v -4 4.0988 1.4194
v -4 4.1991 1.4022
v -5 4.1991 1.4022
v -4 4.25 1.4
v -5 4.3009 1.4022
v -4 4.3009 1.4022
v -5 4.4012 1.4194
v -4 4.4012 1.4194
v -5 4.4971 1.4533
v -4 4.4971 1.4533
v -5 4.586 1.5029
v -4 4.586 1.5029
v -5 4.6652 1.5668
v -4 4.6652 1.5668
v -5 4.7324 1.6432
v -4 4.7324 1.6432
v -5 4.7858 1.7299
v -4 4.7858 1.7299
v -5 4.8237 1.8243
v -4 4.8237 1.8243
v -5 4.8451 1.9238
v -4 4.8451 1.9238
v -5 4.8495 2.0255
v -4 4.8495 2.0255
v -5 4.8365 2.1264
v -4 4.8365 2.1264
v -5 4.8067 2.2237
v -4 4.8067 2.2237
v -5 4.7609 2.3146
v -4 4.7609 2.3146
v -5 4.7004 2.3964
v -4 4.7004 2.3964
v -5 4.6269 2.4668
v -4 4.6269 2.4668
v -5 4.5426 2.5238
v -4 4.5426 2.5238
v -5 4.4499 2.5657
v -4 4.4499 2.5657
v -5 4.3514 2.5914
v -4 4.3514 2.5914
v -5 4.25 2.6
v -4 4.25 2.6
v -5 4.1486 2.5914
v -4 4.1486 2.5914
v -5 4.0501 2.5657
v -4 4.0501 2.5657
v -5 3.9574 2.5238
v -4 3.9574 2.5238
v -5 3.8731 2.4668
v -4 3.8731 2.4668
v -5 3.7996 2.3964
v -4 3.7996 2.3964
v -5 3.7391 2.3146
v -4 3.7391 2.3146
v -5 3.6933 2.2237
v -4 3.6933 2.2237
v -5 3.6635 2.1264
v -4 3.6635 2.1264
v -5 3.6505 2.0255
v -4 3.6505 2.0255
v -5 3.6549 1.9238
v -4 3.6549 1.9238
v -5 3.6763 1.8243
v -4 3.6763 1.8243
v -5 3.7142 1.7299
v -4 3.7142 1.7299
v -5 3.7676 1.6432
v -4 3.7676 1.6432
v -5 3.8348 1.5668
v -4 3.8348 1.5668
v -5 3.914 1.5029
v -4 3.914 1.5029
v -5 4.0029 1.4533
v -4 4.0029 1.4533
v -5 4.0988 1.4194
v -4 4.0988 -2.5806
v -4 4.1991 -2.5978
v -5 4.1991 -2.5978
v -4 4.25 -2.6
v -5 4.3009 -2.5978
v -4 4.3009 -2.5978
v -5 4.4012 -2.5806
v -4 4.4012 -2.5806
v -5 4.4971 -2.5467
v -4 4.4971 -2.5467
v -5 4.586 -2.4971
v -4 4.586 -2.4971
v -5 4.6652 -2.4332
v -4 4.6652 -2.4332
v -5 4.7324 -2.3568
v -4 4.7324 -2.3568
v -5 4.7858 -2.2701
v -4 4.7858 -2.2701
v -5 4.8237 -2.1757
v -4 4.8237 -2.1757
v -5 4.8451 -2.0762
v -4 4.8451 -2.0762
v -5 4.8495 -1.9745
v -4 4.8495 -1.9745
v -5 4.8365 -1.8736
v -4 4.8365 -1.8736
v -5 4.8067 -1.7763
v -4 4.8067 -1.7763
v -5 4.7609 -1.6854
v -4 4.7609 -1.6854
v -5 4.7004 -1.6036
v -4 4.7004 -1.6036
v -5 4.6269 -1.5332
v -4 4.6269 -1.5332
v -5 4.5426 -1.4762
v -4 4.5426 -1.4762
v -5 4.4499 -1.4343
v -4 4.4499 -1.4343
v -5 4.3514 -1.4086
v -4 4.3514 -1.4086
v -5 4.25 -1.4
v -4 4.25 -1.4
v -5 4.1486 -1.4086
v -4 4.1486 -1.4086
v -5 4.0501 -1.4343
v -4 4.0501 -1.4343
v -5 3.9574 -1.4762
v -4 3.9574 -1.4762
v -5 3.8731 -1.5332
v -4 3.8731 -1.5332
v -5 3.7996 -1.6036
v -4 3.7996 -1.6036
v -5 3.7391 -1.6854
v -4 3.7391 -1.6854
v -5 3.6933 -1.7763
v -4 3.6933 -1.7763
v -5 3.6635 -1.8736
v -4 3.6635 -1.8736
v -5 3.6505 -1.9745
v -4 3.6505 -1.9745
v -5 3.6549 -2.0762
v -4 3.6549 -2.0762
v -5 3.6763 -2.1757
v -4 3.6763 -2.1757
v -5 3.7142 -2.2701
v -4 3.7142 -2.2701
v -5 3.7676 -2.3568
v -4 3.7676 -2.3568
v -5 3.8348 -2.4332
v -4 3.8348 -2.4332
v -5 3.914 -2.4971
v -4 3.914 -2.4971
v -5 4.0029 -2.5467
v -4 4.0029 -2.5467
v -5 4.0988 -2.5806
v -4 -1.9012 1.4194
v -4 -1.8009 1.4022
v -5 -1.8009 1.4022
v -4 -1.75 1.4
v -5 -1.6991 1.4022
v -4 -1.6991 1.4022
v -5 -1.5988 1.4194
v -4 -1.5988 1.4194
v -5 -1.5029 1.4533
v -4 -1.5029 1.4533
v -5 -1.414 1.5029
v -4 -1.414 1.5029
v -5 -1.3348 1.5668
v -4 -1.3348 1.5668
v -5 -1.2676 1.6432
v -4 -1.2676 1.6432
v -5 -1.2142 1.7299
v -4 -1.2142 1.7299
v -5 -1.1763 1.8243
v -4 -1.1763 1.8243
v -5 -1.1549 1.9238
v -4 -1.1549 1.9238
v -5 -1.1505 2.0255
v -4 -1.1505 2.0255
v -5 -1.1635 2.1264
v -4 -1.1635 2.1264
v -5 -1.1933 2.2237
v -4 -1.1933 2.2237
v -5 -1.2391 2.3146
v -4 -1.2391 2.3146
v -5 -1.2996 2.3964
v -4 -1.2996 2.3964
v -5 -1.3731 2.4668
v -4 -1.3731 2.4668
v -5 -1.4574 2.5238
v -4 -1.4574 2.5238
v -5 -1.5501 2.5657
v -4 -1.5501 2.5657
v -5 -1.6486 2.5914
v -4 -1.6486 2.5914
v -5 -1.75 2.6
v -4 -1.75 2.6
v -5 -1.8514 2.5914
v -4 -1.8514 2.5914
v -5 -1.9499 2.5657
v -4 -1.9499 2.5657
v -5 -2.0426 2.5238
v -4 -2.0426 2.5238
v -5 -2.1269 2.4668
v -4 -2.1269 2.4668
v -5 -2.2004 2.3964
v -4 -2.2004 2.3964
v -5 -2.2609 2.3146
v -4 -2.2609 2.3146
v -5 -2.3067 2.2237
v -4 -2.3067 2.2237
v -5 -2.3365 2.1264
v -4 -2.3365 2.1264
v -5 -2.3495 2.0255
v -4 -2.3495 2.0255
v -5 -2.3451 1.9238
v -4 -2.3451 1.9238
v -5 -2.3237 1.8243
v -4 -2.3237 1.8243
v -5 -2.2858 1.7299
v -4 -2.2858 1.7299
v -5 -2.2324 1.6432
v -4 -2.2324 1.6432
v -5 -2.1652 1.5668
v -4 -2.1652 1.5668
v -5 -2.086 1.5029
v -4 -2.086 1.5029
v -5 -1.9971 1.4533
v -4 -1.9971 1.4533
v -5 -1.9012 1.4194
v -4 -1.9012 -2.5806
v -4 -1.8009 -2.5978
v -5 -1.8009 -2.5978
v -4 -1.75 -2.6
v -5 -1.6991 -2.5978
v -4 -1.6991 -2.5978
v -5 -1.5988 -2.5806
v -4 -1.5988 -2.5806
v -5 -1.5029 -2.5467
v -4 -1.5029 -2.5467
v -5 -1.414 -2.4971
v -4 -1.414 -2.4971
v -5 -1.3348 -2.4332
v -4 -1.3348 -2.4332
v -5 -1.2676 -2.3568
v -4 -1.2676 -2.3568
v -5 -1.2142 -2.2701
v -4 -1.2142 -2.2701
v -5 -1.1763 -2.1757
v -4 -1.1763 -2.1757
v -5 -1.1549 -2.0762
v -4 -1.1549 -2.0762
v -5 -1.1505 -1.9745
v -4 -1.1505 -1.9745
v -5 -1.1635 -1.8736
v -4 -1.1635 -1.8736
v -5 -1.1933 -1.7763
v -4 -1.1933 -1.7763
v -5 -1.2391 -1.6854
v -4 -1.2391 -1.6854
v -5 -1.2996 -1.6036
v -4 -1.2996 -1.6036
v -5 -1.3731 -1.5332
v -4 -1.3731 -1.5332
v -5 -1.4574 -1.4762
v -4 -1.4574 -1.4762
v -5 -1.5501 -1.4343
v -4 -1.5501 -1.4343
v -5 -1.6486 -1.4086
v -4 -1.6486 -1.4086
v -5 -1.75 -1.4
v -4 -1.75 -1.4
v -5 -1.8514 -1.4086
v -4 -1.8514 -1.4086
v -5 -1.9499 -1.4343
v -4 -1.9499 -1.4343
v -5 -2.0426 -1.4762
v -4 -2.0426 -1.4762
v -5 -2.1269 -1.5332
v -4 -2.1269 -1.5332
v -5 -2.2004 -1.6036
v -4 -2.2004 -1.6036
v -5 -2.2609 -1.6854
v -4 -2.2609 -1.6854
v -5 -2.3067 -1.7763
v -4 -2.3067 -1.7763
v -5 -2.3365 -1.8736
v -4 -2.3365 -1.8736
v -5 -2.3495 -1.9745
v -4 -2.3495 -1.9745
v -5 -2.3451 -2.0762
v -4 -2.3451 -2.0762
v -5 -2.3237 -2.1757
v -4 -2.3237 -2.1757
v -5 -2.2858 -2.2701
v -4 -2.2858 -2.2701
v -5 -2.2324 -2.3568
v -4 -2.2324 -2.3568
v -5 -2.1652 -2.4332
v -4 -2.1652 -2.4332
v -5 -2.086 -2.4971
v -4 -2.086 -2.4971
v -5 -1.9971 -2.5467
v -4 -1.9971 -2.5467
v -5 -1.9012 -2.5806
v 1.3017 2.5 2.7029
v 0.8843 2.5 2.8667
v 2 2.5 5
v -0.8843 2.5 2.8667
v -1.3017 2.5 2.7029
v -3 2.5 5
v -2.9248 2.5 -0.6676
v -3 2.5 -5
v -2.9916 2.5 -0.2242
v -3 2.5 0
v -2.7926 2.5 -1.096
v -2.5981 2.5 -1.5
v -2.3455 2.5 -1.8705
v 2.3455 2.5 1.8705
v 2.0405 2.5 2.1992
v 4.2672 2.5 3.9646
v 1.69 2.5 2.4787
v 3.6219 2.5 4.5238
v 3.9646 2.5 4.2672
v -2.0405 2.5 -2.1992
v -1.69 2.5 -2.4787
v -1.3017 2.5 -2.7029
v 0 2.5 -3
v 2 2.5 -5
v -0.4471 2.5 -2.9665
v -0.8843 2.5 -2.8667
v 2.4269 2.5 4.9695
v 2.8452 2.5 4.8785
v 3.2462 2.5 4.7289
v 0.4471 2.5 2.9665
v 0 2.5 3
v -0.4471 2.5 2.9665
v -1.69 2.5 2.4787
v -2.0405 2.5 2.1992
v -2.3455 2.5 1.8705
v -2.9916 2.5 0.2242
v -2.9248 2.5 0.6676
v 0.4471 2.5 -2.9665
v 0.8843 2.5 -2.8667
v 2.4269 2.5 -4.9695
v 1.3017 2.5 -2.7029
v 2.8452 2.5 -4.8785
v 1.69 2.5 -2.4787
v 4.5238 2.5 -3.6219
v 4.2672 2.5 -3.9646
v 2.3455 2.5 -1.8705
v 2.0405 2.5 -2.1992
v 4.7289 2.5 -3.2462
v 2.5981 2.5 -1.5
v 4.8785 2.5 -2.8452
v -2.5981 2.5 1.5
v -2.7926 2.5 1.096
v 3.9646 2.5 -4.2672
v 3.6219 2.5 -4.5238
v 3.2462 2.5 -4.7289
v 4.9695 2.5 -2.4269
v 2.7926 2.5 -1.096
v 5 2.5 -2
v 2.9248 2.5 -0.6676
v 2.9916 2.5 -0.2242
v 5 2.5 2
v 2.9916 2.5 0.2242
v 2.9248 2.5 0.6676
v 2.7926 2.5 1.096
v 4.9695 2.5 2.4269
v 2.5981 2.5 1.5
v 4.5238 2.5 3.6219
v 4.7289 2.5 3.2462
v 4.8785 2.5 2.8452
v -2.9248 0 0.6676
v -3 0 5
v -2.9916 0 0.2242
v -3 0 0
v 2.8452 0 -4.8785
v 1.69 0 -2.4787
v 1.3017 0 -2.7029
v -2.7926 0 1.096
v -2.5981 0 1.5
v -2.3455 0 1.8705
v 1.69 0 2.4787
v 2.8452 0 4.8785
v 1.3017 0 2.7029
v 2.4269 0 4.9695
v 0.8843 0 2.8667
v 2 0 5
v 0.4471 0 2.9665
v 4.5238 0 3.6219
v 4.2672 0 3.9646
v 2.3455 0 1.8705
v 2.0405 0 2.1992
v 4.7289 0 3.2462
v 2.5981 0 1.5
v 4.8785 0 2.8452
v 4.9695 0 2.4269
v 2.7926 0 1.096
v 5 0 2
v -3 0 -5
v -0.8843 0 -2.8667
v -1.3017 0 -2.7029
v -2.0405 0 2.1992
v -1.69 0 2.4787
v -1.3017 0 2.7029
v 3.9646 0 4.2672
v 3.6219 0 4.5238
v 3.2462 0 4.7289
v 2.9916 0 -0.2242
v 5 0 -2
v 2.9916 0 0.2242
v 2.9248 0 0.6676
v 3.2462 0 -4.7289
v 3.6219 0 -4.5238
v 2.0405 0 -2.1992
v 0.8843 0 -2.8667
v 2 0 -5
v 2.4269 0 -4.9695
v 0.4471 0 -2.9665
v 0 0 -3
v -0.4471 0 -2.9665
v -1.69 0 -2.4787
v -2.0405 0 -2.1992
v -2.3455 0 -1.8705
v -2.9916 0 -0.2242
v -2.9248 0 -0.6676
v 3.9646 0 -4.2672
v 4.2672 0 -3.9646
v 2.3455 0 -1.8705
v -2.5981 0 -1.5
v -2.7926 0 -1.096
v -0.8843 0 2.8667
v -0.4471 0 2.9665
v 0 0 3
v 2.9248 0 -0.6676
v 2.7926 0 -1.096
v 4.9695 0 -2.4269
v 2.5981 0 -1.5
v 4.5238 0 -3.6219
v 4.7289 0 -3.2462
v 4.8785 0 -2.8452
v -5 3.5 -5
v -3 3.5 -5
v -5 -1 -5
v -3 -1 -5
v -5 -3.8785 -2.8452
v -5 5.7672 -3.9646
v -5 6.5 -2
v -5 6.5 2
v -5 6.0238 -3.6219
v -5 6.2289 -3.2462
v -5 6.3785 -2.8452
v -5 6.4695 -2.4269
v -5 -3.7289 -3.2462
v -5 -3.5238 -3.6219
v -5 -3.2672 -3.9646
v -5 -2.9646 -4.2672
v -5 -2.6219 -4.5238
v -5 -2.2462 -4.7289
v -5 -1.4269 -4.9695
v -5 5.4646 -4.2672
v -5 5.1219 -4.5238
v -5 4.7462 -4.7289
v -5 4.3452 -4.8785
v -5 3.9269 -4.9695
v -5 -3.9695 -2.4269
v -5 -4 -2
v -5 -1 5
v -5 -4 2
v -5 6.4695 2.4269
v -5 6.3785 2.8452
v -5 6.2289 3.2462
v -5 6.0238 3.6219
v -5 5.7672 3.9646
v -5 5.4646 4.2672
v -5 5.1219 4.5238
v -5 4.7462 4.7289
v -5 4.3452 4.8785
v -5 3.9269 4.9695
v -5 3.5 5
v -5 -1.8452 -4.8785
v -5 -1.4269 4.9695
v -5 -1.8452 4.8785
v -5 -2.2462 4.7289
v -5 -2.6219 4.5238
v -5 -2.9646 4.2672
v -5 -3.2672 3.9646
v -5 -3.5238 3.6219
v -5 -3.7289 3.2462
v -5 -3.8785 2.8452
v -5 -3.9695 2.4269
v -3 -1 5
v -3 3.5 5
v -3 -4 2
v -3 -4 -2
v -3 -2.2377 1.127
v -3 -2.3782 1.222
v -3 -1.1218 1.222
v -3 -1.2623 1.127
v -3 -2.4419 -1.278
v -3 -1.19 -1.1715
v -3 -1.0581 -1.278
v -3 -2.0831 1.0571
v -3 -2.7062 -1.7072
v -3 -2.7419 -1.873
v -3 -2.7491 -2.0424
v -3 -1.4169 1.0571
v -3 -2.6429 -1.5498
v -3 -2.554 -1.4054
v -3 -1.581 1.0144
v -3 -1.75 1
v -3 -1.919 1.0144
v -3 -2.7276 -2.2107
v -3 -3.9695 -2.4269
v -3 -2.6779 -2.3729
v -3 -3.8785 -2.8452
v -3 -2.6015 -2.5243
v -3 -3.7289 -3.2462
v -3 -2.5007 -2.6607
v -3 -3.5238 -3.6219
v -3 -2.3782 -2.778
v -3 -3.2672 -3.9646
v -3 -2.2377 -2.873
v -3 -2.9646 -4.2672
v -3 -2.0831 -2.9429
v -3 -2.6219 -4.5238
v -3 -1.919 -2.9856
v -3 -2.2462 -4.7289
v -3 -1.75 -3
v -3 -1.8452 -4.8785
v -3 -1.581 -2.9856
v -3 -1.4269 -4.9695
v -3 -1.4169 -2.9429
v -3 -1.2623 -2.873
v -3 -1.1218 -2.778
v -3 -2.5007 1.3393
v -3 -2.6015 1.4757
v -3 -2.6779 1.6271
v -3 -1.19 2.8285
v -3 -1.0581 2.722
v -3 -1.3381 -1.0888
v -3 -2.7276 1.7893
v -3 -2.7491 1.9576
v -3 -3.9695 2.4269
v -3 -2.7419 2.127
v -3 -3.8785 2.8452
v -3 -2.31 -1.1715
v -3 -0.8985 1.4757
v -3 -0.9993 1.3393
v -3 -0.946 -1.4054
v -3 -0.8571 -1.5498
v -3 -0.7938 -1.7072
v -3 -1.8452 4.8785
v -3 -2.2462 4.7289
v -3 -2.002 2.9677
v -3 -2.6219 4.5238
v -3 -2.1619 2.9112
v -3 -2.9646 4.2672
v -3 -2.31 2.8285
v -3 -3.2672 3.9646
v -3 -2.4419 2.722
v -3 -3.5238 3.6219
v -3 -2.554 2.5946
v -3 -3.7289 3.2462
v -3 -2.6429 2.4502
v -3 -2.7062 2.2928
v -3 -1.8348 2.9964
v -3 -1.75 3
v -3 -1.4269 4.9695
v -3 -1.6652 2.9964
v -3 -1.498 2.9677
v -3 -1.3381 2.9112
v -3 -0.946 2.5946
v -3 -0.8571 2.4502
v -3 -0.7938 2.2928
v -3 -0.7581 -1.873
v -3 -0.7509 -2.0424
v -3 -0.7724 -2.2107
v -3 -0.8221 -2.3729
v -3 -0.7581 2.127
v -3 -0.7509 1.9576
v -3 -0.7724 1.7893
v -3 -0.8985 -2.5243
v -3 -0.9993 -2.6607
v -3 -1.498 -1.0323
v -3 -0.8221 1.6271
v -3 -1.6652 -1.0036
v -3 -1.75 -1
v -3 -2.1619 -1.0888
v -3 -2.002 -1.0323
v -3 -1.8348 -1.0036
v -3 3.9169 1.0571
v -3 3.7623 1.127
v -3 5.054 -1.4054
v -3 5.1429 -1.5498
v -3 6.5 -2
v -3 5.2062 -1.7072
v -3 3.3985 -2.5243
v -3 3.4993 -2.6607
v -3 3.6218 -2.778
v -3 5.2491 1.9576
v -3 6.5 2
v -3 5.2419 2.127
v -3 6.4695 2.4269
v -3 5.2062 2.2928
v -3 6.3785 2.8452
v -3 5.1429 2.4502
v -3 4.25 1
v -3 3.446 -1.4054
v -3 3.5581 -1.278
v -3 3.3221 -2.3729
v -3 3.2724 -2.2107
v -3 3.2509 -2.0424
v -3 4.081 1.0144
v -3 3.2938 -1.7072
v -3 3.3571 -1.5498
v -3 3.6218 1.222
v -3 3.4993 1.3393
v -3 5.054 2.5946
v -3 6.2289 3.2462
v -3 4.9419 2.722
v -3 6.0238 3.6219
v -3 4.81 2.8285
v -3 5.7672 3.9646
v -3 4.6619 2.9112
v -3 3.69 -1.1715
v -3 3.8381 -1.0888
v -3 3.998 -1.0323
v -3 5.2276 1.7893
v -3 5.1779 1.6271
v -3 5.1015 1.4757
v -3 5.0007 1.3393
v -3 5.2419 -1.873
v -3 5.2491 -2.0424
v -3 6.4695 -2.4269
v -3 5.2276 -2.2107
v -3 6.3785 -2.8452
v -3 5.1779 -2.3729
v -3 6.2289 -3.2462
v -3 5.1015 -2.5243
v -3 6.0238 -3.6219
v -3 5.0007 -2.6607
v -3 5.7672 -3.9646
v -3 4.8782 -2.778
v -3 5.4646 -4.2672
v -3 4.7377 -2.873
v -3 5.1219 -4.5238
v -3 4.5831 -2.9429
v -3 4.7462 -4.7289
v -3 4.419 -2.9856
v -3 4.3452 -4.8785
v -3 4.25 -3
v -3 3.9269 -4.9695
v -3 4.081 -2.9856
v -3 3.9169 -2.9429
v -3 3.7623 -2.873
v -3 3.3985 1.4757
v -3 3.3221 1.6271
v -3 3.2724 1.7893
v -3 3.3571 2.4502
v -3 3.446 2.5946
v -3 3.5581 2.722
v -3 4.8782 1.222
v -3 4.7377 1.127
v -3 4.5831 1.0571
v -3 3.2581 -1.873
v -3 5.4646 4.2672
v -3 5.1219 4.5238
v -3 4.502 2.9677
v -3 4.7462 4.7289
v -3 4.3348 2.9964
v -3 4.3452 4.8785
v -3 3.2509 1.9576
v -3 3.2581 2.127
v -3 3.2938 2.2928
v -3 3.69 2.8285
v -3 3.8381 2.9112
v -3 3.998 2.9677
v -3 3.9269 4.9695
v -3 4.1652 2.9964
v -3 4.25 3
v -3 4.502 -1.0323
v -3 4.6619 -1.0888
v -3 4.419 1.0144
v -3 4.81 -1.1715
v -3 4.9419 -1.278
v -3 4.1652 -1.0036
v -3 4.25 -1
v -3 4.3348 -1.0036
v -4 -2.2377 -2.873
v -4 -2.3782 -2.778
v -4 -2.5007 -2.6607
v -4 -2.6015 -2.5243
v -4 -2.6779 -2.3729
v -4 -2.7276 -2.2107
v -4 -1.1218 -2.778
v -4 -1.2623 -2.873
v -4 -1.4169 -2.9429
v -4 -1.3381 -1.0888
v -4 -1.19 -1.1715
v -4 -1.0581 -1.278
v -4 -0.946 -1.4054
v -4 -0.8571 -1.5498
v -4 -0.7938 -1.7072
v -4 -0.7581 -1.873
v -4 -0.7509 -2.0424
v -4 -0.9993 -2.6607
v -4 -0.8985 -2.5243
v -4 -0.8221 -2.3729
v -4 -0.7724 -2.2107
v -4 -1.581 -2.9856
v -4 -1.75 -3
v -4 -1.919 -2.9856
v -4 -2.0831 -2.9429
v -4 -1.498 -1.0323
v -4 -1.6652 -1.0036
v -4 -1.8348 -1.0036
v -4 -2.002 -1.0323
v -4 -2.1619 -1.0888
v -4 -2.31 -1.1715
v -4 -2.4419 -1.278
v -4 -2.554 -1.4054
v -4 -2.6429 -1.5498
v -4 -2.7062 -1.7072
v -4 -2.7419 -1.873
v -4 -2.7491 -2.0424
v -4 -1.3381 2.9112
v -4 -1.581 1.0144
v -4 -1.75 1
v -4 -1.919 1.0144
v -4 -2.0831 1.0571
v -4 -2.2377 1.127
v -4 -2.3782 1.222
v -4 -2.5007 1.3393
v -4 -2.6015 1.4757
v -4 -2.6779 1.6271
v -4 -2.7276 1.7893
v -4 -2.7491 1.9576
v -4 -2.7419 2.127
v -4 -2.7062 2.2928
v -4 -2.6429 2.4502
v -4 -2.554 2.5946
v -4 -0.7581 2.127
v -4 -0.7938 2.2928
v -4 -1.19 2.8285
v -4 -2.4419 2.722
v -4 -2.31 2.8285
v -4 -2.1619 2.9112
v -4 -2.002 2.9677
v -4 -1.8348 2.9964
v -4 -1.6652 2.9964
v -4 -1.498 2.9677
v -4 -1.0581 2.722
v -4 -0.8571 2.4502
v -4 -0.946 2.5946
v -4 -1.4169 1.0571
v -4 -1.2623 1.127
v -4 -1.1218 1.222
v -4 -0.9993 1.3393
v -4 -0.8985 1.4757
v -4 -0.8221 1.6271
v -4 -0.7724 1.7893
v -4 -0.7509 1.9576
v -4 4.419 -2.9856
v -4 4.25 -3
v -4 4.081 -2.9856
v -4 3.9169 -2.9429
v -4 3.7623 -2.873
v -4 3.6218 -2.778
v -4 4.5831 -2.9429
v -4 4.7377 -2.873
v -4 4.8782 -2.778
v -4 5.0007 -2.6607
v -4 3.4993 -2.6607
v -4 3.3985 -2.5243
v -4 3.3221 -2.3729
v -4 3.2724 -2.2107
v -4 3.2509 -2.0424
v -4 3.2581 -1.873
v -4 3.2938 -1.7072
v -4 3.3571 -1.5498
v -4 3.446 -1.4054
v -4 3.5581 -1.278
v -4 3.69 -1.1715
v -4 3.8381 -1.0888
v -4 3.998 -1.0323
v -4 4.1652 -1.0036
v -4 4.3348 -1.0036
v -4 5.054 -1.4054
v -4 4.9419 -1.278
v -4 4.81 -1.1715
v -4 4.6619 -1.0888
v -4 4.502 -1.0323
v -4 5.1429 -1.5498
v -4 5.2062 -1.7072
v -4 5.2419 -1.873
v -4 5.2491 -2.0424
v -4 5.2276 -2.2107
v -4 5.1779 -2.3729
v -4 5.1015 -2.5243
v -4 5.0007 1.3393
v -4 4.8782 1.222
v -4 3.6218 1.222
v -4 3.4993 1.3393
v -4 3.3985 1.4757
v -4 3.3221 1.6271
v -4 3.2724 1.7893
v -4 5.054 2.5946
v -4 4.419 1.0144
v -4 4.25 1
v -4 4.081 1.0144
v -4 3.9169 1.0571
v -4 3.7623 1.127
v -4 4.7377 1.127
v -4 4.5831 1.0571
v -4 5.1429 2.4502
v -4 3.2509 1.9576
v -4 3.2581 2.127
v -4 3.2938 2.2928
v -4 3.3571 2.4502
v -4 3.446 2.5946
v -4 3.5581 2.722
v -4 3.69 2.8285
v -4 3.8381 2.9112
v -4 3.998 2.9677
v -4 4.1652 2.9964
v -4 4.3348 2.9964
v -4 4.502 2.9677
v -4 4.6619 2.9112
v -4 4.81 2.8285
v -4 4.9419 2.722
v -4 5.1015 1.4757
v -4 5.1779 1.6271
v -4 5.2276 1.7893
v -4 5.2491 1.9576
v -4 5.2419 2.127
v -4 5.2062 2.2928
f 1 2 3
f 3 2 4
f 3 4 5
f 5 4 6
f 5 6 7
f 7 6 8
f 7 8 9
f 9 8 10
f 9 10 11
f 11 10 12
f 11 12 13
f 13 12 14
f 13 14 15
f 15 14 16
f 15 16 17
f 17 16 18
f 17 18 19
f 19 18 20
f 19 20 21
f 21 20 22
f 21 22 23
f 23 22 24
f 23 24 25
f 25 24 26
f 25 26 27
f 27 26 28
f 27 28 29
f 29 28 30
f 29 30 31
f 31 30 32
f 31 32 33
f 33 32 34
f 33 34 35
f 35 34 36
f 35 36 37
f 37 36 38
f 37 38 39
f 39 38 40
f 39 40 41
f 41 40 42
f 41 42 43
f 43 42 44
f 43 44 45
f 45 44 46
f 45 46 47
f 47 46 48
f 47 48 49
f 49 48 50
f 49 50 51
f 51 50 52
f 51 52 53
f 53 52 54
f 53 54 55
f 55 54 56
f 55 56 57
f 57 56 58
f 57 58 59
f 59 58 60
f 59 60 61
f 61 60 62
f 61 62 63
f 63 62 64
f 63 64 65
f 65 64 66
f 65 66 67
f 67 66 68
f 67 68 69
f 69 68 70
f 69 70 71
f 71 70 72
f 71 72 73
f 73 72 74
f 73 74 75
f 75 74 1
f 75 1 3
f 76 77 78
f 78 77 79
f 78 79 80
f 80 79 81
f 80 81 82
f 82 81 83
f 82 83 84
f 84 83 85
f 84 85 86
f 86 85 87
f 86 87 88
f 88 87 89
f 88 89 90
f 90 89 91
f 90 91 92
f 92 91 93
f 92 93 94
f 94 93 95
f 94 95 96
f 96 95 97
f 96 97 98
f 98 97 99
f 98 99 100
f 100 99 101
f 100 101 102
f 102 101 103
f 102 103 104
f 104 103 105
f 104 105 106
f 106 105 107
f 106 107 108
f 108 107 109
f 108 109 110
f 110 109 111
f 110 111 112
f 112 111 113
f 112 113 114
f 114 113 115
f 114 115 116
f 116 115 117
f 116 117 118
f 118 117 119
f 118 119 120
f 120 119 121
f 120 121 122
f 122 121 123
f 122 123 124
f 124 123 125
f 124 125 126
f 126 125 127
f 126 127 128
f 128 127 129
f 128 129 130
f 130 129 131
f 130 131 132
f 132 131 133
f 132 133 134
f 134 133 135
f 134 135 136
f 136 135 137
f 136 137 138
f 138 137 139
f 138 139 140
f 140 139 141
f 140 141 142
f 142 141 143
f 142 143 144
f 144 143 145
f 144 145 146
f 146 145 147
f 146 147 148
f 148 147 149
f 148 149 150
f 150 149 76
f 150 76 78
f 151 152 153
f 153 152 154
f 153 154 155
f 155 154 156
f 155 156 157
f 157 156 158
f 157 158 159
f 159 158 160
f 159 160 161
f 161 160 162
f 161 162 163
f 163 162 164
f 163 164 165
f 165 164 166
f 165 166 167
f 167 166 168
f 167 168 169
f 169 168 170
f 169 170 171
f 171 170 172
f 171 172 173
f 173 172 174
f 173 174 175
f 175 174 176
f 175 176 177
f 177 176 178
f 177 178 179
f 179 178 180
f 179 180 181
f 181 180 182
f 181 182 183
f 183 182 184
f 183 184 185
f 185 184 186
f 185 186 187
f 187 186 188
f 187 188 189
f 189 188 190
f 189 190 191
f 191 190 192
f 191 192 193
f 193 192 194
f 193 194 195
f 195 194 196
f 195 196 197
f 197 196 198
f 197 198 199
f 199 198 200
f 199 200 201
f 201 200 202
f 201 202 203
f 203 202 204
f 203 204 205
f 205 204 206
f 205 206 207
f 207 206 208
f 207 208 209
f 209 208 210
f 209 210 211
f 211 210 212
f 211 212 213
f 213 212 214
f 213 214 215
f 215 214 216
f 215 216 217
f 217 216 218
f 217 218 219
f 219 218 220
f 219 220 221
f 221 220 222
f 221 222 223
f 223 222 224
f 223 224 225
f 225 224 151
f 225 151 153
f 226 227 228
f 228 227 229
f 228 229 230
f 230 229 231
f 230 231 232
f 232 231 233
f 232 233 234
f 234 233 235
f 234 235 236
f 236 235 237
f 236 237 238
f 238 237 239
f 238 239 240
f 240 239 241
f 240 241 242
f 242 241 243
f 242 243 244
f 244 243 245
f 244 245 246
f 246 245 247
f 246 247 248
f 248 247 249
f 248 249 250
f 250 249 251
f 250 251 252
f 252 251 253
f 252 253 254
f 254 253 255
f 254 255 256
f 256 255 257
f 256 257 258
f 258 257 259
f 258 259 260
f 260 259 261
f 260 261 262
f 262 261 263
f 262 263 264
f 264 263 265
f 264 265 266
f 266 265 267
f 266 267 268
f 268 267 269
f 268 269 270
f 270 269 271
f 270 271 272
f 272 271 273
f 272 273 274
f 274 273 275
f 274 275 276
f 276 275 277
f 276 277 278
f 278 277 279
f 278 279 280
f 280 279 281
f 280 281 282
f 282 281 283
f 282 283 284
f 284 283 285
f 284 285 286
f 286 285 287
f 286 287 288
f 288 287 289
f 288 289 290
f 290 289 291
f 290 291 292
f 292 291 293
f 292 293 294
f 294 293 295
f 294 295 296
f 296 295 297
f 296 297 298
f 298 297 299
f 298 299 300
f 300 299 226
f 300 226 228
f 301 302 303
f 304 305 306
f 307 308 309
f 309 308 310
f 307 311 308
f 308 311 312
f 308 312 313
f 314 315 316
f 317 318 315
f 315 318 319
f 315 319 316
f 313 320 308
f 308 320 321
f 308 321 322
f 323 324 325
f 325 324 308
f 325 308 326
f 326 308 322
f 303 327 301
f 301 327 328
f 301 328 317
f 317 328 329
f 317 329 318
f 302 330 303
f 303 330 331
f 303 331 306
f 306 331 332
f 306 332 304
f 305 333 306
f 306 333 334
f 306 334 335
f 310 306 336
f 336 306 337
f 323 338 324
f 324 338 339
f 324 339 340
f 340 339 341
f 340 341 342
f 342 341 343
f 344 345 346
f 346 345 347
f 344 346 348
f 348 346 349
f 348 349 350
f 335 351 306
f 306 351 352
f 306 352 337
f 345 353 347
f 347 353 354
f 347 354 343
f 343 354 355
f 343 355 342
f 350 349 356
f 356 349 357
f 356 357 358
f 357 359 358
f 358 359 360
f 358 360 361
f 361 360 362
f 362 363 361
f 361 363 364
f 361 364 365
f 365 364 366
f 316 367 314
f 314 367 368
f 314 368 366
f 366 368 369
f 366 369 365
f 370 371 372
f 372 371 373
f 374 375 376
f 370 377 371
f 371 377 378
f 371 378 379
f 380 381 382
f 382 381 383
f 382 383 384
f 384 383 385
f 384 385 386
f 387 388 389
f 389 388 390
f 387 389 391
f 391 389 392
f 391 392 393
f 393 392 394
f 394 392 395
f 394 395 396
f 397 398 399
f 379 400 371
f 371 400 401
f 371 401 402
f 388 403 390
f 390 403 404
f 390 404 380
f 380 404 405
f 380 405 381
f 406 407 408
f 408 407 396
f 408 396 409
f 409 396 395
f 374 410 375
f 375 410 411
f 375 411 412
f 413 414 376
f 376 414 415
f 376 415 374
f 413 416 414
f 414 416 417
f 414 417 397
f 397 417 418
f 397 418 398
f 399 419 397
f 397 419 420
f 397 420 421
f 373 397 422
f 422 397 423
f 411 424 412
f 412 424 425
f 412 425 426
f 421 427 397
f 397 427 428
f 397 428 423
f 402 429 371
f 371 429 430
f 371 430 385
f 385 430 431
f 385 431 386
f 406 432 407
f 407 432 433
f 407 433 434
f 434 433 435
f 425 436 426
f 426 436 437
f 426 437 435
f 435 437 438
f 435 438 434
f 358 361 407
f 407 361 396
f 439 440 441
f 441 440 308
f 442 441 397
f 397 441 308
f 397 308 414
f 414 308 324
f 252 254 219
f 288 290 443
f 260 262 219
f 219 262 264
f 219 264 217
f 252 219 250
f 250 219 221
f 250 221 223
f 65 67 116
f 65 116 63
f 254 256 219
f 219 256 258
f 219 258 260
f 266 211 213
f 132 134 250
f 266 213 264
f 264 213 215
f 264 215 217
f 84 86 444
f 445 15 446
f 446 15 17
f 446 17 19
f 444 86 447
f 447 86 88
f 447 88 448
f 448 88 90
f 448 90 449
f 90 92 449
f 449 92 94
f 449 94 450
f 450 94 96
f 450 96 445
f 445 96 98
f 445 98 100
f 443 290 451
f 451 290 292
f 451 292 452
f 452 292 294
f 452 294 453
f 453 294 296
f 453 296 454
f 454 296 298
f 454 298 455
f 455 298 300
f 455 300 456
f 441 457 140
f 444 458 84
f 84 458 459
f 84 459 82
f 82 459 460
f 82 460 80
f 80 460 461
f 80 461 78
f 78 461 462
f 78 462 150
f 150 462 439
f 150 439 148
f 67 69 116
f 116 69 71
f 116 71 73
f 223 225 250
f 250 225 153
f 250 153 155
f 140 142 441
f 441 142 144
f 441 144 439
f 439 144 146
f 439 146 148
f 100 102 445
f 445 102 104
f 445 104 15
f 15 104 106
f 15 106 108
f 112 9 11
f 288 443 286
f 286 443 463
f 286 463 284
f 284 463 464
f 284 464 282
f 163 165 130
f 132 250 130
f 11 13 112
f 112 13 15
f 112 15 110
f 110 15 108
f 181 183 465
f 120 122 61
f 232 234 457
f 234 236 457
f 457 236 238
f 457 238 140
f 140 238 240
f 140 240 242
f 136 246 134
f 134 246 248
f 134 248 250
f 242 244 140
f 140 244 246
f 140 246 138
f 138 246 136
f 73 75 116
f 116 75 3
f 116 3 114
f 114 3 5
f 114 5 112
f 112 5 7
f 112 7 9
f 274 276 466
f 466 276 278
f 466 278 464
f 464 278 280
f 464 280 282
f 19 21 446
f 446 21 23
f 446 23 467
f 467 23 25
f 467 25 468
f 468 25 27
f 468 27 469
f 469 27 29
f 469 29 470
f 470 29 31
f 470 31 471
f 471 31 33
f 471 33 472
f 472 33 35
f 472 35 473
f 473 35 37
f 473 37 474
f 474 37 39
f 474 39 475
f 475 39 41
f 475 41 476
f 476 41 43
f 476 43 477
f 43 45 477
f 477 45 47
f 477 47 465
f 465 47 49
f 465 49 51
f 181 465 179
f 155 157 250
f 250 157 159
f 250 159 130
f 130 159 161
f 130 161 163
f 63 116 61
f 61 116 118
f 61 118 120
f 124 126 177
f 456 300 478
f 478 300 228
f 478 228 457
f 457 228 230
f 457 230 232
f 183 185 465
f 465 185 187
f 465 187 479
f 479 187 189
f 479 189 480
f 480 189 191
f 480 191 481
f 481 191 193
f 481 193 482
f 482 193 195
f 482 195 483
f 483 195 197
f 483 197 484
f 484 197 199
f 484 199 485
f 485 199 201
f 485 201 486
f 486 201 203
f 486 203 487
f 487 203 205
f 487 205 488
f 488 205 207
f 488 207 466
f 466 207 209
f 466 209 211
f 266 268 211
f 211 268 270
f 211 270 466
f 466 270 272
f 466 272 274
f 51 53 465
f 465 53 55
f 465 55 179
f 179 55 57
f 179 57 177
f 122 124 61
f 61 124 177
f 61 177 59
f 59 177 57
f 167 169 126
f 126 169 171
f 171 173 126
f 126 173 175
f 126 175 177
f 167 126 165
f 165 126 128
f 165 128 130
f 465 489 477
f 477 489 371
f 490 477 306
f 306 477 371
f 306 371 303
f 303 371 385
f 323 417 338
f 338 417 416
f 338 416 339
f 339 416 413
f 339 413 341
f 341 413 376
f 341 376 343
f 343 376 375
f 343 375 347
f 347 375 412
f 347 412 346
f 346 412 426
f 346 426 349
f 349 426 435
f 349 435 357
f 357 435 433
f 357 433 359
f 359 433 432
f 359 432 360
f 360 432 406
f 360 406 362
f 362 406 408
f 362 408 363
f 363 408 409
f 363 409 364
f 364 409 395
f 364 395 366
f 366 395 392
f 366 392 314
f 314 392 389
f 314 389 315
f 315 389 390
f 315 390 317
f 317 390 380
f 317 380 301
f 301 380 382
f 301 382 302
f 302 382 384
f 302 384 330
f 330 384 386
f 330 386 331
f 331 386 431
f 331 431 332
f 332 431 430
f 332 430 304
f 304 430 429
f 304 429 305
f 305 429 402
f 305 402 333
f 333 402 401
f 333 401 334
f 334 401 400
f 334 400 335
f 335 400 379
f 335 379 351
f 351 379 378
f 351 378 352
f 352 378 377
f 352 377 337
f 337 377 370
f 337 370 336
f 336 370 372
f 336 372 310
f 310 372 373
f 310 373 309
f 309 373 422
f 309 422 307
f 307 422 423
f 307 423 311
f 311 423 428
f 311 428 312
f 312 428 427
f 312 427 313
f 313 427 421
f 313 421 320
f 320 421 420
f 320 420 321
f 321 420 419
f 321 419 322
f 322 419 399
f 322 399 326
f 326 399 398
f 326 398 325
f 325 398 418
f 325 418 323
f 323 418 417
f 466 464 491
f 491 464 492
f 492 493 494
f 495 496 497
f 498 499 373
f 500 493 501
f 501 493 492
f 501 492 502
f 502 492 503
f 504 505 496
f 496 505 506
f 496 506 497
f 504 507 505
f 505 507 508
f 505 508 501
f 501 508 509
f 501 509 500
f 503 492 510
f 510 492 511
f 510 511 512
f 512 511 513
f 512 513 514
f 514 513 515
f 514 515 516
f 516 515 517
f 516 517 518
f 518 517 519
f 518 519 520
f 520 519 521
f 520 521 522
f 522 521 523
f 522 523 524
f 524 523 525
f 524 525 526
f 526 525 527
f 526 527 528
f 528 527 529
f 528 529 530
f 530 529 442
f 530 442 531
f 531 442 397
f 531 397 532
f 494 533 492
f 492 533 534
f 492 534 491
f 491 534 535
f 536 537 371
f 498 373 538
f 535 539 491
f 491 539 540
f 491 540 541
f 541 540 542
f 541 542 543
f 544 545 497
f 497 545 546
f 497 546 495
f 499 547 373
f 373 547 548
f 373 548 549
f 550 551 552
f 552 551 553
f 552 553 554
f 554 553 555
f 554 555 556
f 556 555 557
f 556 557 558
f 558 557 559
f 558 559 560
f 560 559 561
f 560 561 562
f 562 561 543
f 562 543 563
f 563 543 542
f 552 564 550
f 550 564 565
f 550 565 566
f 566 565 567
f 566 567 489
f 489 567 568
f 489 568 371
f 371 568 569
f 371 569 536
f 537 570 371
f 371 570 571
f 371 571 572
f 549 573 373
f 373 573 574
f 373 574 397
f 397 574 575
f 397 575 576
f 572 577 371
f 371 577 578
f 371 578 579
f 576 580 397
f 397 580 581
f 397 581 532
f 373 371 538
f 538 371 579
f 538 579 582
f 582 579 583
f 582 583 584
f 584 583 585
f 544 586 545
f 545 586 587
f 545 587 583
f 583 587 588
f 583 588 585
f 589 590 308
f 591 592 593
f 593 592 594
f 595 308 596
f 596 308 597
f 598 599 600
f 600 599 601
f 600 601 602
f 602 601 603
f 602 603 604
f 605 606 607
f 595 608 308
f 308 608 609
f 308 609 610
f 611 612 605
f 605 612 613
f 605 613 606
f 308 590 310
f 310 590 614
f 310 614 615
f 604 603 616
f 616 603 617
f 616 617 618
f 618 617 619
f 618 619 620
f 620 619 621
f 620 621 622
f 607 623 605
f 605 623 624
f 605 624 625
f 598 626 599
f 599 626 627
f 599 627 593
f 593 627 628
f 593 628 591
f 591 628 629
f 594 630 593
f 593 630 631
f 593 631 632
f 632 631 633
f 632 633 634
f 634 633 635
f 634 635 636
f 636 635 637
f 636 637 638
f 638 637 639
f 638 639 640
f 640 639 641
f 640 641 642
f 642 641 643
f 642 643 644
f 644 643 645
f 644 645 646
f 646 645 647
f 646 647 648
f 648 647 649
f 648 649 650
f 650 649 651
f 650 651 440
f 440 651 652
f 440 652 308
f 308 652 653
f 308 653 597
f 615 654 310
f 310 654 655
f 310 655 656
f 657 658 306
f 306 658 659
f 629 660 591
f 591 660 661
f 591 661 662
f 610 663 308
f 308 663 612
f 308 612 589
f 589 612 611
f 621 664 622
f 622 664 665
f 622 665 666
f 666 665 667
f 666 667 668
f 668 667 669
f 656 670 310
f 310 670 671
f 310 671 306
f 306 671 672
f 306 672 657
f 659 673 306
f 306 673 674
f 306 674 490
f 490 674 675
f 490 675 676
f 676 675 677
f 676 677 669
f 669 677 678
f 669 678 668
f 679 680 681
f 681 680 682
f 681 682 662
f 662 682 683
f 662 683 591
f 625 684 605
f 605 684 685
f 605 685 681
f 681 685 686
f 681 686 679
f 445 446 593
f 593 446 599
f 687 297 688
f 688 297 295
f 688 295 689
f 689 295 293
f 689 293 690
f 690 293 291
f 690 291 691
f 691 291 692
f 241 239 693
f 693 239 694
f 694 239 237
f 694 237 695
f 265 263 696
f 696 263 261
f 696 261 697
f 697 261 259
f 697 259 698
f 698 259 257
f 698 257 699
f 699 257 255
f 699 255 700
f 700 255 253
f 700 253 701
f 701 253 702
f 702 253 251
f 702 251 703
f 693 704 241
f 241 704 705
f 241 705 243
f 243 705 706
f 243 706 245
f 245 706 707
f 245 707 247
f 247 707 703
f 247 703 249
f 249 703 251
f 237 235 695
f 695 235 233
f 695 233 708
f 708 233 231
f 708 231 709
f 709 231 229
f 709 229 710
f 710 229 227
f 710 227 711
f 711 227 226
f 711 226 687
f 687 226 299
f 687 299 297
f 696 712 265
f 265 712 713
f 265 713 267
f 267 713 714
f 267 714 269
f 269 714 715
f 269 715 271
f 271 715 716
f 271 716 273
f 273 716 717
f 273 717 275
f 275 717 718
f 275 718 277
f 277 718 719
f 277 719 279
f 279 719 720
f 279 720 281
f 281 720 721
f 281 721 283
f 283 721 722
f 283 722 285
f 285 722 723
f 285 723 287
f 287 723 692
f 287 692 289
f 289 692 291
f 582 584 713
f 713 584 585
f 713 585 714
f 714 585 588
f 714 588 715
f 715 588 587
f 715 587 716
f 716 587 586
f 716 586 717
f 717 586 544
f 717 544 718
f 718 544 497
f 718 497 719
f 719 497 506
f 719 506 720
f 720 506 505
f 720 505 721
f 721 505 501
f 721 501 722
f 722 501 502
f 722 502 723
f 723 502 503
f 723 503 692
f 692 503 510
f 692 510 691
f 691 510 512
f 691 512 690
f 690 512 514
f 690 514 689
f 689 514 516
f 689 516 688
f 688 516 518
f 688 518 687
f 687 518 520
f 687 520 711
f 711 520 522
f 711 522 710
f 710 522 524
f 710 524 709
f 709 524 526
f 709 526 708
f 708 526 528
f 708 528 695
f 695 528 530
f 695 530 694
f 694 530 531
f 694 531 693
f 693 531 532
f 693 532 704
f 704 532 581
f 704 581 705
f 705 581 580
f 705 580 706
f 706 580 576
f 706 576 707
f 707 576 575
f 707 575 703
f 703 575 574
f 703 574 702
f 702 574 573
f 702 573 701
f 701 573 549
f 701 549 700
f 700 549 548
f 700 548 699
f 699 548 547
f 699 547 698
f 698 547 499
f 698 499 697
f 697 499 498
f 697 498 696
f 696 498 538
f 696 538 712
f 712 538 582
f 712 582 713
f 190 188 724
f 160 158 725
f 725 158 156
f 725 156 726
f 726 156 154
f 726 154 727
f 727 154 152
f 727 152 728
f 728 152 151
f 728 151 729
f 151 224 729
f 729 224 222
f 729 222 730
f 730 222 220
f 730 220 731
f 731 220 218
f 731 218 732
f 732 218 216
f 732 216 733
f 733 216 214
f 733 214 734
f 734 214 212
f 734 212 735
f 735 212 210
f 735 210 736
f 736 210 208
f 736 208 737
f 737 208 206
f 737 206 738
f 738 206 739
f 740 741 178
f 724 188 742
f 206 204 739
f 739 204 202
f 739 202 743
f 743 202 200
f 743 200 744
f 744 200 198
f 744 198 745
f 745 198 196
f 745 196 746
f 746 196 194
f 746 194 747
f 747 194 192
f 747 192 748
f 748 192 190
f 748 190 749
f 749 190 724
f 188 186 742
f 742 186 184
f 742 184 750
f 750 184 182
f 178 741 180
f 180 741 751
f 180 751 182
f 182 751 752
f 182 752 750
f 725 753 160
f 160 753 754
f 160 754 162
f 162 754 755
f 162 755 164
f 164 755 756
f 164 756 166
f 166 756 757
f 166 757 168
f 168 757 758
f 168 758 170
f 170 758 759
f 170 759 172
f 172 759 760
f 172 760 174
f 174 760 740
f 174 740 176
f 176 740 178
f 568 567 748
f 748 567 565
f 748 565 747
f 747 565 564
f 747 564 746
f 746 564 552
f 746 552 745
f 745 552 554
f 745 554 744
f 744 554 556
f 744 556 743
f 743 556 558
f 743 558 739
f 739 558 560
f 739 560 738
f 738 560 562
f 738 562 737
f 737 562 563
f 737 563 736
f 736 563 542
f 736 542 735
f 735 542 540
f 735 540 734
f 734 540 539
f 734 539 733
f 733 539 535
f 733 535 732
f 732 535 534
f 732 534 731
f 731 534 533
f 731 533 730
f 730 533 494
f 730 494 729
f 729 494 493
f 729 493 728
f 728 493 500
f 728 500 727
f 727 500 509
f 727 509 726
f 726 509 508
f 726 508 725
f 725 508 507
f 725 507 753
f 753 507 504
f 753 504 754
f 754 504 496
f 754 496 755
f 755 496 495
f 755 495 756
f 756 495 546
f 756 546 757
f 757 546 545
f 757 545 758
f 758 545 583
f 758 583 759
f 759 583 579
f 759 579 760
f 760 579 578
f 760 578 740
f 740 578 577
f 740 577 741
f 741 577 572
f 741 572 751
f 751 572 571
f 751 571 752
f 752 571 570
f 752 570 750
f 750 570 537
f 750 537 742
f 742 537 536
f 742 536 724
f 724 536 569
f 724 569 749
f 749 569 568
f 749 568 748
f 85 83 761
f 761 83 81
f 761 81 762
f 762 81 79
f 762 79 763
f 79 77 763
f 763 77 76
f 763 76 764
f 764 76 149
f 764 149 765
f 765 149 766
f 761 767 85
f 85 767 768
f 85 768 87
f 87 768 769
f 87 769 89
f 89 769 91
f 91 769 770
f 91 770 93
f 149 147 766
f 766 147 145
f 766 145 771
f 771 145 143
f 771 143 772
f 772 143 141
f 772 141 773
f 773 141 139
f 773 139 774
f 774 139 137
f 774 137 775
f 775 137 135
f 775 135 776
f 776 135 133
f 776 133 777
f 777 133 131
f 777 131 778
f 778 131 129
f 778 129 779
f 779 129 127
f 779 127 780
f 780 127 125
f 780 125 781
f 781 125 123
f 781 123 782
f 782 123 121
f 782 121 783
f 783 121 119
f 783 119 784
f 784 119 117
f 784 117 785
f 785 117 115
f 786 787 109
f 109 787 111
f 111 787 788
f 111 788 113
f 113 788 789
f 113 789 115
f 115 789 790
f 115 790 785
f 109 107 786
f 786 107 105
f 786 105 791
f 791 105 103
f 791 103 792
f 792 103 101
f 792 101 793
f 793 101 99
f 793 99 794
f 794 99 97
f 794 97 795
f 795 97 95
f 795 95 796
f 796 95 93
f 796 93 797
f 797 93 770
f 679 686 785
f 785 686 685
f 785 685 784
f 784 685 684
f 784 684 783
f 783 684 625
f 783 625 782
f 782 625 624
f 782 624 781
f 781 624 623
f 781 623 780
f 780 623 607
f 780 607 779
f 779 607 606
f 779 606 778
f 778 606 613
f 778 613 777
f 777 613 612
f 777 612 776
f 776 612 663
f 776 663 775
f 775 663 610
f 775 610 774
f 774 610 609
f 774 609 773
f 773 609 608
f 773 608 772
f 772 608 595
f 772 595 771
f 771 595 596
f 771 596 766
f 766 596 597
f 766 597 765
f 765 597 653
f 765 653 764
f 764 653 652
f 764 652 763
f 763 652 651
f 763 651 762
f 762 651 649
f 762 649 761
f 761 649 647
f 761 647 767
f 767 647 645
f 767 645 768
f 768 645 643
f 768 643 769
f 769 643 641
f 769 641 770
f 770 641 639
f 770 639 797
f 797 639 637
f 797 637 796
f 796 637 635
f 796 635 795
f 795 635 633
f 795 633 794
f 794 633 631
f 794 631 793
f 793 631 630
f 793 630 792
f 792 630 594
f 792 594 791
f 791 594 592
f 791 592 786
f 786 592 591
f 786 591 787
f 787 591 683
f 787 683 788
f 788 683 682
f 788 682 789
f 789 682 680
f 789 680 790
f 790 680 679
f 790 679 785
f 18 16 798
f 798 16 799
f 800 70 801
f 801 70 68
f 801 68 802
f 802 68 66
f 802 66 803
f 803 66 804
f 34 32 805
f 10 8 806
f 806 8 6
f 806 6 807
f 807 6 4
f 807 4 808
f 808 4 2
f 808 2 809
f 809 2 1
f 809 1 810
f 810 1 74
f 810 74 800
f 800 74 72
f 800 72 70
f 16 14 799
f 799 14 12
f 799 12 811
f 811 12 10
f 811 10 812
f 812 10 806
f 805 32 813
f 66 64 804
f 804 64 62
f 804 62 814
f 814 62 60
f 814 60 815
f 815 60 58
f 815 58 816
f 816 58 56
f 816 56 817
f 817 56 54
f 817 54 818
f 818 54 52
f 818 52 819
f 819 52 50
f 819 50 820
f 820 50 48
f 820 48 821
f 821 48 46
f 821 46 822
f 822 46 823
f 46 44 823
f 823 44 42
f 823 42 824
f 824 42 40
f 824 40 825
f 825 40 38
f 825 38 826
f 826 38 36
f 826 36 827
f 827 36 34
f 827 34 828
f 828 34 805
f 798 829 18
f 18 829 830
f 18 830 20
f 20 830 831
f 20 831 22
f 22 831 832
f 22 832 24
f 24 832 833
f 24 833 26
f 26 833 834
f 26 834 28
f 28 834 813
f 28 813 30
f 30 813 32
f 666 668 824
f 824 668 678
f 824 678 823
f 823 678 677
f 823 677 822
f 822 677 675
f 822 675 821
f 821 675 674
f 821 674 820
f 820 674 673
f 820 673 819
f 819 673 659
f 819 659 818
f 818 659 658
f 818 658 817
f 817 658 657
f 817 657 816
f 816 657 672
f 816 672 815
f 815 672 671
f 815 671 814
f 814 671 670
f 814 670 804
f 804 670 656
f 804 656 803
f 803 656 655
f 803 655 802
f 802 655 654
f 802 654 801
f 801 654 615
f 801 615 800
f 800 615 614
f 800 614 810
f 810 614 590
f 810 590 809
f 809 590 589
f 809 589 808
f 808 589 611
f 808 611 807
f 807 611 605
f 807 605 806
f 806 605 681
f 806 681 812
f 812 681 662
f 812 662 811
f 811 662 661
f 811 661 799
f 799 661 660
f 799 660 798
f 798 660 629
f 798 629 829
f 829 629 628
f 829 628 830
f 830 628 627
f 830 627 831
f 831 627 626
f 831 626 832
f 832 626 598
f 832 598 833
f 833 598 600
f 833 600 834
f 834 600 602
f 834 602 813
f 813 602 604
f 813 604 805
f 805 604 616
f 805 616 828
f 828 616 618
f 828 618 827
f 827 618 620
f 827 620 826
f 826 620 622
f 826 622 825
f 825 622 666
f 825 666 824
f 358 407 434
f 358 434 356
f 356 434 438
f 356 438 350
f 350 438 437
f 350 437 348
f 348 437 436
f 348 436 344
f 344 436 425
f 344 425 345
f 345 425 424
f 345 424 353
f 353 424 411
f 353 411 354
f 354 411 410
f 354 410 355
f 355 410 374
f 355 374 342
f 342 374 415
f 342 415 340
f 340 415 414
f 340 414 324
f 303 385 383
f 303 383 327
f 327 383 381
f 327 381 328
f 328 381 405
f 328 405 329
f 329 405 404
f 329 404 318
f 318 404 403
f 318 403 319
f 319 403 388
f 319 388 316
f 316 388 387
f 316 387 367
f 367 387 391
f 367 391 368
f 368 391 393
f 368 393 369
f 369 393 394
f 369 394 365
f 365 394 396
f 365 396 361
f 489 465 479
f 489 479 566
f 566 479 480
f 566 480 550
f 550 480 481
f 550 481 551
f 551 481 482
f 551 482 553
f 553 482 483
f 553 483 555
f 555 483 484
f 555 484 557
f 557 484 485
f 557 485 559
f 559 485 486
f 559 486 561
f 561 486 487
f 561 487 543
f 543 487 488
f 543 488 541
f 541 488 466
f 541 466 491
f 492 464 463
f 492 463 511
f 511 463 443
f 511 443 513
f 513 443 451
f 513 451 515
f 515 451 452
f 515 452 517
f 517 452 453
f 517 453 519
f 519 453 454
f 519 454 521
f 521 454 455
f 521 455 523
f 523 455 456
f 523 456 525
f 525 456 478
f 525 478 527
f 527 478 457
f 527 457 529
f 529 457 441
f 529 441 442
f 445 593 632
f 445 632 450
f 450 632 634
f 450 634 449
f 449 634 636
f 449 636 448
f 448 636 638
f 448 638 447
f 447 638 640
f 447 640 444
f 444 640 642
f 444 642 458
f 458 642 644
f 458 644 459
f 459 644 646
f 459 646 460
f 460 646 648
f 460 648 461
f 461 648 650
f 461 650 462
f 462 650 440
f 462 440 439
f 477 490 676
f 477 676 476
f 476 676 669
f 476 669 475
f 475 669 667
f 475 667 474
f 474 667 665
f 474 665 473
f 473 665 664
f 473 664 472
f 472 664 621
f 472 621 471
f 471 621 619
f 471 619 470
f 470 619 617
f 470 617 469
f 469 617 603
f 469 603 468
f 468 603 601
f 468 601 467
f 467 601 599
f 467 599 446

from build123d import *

# Parameters (mm, degrees)
SKETCH_1_W          = 10
SKETCH_1_H          = 10
SKETCH_1_R          = 3
EXTRUDE_1_DEPTH     = 2.5
SKETCH_3_W          = 10
SKETCH_3_H          = 10.5
EXTRUDE_2_DEPTH     = 2
SKETCH_3_3_R        = 0.6
CUT_EXTRUDE_1_DEPTH = 13.932517156
CUT_EXTRUDE_START   = -2
SKETCH_3_4_R        = 1
CUT_EXTRUDE_2_DEPTH = 1
FILLET_1_R          = 3
FILLET_2_R          = 3


with BuildPart() as part:
    # 草图1 → 凸台-拉伸1 (new body)
    with BuildSketch(Plane(origin=(0, 0, 0), x_dir=(1, 0, 0), z_dir=(0, 1, 0))):
        Rectangle(SKETCH_1_W, SKETCH_1_H)
        with Locations(Location((0, 0, 0), (0, 0, 270))):
            Circle(SKETCH_1_R, mode=Mode.SUBTRACT)
    extrude(amount=EXTRUDE_1_DEPTH)

    # 草图3 → 凸台-拉伸2 (add)
    with BuildSketch(Plane.ZY.offset(5)):
        with Locations((0, 1.25)):
            Rectangle(SKETCH_3_W, SKETCH_3_H)
    extrude(amount=-EXTRUDE_2_DEPTH)

    # 草图3<3> → 切除-拉伸1 (cut, through all)
    with BuildSketch(Plane.ZY.offset(5)):
        with Locations((-2, 4.25)):
            Circle(SKETCH_3_3_R)
        with Locations((2, 4.25)):
            Circle(SKETCH_3_3_R)
        with Locations((-2, -1.75)):
            Circle(SKETCH_3_3_R)
        with Locations((2, -1.75)):
            Circle(SKETCH_3_3_R)
    extrude(amount=-CUT_EXTRUDE_1_DEPTH, mode=Mode.SUBTRACT)

    # 草图3<4> → 切除-拉伸2 (cut)
    with BuildSketch(Plane.ZY.offset(5).offset(CUT_EXTRUDE_START)):
        with Locations(Location((-2, 4.25, 0), (0, 0, 180))):
            Circle(SKETCH_3_4_R)
        with Locations(Location((2, 4.25, 0), (0, 0, 180))):
            Circle(SKETCH_3_4_R)
        with Locations(Location((-2, -1.75, 0), (0, 0, 180))):
            Circle(SKETCH_3_4_R)
        with Locations(Location((2, -1.75, 0), (0, 0, 180))):
            Circle(SKETCH_3_4_R)
    extrude(amount=CUT_EXTRUDE_2_DEPTH, mode=Mode.SUBTRACT)

    # 圆角1
    fillet_1_edges = [part.edges().sort_by_distance(p)[0] for p in [
        (5, 1.25, 5),
        (5, 1.25, -5),
    ]]
    fillet(fillet_1_edges, radius=FILLET_1_R)

    # 圆角2
    fillet_2_edges = [part.edges().sort_by_distance(p)[0] for p in [
        (-4, 6.5, 5),
        (-4, 6.5, -5),
        (-4, -4, 5),
        (-4, -4, -5),
    ]]
    fillet(fillet_2_edges, radius=FILLET_2_R)


solid = part.part
